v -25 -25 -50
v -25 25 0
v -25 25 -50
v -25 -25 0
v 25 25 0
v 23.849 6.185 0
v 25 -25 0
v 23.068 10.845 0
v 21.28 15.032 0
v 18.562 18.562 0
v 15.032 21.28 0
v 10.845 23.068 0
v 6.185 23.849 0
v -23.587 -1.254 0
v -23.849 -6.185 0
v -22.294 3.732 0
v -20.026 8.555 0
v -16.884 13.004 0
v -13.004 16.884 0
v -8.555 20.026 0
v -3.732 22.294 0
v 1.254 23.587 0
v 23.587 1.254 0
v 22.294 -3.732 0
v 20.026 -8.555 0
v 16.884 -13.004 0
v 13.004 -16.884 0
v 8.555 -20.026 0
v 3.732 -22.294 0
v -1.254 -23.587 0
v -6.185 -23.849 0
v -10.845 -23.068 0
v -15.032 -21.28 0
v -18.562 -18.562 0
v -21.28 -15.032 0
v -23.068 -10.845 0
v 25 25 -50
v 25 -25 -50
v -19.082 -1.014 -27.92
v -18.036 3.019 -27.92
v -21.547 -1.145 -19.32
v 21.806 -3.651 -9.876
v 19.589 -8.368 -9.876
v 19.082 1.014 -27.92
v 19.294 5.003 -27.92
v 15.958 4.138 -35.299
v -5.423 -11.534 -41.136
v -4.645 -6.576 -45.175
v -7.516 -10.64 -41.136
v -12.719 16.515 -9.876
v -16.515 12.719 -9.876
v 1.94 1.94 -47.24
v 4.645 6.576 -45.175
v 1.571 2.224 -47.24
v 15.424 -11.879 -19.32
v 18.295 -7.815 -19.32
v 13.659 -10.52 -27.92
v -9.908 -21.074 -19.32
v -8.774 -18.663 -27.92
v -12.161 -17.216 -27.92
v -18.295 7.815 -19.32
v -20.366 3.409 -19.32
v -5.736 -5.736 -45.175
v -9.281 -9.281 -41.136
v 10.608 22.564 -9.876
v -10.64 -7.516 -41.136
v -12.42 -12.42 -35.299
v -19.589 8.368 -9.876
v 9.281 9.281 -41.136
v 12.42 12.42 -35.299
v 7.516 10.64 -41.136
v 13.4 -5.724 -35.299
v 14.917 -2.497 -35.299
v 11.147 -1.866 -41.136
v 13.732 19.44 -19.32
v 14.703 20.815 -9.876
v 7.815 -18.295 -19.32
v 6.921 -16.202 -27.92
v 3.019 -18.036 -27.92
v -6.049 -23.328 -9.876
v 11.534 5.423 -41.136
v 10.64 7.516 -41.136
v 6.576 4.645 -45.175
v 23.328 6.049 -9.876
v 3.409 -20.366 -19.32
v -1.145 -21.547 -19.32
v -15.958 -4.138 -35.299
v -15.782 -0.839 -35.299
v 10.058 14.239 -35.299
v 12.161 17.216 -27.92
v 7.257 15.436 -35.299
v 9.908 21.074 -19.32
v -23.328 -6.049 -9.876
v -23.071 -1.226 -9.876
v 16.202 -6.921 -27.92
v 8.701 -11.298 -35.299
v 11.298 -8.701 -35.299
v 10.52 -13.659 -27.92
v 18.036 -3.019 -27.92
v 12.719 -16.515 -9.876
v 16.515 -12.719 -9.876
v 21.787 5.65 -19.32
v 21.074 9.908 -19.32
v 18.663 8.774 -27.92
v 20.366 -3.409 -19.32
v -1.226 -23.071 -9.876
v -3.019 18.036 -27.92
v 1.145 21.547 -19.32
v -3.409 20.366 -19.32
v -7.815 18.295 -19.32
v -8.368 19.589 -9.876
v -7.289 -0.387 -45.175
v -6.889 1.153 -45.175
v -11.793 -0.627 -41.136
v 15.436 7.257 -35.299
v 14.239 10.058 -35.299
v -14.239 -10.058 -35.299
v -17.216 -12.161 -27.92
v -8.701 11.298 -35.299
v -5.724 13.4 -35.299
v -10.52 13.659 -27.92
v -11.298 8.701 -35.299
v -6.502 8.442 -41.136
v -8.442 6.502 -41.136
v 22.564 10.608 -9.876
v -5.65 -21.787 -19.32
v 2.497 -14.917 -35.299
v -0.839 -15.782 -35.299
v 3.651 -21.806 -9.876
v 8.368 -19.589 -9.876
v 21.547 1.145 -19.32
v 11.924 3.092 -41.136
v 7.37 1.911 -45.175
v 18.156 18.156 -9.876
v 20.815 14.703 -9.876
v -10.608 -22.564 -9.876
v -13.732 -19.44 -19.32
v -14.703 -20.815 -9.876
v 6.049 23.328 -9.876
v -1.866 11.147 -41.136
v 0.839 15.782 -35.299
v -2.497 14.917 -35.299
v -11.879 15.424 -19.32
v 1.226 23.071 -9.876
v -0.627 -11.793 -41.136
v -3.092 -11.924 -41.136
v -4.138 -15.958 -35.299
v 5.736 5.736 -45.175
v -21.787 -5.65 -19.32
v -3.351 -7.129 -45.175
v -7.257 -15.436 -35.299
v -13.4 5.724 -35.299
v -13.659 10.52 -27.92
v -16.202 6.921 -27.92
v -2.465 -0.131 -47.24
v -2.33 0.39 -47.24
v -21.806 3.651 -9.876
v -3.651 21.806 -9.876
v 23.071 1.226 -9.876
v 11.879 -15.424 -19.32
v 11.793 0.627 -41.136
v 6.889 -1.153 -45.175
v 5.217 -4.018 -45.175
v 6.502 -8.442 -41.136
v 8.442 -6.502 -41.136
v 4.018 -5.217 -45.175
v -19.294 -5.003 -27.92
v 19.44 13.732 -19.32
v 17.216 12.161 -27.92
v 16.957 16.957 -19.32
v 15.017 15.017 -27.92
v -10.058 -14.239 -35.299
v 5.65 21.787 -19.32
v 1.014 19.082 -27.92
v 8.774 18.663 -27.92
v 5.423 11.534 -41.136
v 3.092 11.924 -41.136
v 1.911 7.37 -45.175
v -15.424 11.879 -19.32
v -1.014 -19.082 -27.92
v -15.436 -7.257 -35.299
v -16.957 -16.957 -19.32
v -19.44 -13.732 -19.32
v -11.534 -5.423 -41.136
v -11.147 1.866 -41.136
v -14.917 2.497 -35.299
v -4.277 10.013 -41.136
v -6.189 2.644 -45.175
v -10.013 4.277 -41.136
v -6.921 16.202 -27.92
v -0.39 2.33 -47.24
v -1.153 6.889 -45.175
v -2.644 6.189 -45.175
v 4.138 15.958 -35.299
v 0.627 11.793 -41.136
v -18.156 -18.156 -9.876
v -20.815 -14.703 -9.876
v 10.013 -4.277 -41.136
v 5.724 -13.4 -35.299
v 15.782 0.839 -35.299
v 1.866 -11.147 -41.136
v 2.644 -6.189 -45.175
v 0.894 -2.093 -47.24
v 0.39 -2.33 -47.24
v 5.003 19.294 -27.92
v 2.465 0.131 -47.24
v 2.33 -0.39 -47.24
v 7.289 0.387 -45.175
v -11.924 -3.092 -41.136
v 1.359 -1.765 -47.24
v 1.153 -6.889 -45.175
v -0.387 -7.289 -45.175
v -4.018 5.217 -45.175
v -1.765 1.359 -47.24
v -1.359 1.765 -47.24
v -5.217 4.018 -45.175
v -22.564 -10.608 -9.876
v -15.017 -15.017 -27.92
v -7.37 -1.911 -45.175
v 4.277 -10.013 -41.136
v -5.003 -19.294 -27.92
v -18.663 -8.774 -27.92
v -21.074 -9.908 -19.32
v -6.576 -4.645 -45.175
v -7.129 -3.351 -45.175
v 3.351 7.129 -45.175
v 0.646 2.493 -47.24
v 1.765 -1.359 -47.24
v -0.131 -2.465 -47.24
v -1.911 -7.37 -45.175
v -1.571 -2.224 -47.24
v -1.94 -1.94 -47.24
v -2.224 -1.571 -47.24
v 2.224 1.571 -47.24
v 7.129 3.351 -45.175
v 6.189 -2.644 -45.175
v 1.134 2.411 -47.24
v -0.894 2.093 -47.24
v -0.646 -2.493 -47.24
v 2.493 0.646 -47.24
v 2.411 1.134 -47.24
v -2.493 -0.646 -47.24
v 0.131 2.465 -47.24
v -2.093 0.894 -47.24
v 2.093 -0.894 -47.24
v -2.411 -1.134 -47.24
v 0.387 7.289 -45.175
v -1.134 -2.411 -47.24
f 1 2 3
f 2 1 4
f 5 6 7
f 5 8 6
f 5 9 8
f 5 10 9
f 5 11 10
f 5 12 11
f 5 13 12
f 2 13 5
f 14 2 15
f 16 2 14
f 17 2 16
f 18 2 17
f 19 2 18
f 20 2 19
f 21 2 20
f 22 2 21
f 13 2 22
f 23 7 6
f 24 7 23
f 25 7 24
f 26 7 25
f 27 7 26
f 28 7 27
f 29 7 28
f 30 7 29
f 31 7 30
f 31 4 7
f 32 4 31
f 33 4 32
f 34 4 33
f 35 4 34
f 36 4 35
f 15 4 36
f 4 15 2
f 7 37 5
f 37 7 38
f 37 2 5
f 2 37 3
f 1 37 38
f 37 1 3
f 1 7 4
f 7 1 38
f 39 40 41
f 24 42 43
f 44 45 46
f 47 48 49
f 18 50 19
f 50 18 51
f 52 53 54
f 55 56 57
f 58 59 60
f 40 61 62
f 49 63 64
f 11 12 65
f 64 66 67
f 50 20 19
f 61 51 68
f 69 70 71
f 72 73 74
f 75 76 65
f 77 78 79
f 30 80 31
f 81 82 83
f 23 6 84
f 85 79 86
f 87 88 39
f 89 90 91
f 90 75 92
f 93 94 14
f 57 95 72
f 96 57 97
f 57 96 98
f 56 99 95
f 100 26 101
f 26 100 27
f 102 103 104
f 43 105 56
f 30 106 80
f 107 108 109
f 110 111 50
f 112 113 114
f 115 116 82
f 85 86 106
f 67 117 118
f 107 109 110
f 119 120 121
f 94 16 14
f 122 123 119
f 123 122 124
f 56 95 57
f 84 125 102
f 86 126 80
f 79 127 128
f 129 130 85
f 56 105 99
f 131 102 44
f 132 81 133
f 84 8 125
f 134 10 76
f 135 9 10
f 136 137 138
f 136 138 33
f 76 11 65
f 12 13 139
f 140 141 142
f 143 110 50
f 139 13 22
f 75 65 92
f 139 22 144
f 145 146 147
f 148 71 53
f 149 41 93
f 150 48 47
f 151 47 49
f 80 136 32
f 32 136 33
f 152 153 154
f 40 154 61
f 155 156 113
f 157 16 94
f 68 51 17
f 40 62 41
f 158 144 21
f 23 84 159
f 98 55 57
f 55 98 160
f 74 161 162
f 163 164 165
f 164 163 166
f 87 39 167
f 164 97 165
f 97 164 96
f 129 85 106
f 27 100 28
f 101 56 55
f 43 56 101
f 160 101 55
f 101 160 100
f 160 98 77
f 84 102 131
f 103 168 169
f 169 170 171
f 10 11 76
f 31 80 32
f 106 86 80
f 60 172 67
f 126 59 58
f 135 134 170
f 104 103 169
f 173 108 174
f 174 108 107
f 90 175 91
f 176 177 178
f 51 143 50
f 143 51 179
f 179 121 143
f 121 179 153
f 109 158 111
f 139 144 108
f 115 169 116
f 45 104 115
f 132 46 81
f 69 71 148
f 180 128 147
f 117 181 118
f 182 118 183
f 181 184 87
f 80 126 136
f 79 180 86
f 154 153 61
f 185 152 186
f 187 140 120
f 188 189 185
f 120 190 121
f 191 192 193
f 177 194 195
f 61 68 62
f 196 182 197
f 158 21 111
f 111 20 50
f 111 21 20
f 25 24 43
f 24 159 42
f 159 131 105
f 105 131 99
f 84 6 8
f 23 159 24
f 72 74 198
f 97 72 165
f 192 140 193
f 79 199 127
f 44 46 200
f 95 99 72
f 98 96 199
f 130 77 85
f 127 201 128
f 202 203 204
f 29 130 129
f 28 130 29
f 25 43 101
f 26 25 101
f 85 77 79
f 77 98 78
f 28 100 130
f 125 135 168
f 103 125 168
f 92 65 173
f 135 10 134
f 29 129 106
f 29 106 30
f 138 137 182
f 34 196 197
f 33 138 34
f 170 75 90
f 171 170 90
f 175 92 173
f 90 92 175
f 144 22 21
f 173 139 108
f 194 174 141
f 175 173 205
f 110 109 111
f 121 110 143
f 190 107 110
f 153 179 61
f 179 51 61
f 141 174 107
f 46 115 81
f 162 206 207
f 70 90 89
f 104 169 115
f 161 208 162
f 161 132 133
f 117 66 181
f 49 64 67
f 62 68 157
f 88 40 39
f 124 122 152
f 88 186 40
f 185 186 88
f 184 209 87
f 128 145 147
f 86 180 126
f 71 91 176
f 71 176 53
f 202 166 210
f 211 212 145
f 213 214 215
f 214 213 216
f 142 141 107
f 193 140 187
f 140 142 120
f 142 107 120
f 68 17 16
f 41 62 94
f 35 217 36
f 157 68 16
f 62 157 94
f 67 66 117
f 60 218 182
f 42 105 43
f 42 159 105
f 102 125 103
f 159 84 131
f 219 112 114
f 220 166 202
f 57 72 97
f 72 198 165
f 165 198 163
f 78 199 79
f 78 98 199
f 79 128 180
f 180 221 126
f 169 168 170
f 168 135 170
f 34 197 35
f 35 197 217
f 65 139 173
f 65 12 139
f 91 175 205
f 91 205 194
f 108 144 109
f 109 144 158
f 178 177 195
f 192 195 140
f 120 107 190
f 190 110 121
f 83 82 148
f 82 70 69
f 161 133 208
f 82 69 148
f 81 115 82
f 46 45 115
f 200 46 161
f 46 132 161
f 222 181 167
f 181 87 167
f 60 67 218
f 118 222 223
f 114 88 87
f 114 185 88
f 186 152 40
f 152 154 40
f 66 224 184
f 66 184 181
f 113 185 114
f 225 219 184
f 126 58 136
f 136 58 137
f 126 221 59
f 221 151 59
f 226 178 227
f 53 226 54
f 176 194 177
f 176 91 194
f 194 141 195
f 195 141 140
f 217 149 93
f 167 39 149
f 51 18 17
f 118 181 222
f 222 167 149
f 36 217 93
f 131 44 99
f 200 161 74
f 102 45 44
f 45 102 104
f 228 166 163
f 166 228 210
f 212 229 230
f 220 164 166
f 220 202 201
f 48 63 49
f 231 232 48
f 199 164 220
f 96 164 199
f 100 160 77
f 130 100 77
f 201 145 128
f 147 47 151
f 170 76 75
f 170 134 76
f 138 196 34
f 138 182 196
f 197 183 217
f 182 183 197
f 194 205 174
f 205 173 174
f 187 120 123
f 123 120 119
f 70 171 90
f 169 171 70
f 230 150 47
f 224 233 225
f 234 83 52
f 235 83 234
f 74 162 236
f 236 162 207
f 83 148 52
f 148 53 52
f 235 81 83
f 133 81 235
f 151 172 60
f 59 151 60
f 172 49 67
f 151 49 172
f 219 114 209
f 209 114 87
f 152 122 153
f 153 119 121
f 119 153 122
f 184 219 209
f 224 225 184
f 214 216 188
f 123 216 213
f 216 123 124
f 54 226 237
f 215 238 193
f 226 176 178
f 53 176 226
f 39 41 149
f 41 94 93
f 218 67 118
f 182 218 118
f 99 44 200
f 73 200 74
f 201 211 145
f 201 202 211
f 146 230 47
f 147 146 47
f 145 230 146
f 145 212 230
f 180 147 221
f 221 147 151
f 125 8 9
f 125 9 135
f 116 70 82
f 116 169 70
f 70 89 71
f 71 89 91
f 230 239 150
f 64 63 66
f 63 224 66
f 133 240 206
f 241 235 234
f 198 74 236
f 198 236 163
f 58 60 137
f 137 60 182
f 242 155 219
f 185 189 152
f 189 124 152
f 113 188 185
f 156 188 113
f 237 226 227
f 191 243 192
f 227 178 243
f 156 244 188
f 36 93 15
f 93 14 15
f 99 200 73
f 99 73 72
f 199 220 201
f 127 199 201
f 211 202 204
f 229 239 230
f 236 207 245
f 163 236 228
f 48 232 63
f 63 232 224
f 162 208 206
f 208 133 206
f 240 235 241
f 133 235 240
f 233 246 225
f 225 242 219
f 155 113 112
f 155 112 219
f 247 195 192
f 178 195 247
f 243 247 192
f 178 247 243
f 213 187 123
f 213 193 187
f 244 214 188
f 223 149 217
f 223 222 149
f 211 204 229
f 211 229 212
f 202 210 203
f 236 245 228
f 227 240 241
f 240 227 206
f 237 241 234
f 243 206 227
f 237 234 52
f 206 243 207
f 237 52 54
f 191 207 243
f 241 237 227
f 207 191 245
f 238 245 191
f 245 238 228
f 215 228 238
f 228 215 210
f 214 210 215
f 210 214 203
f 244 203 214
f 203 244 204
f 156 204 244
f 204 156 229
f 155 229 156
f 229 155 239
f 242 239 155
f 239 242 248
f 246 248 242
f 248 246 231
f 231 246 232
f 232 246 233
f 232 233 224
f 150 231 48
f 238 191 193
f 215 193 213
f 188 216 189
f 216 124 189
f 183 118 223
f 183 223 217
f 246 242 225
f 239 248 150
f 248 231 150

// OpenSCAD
difference(){
    translate([0,0,-25]) cube([50,50,50], center=true);
    
    rotate([0,0,1], a=45) scale([1.05,0.85,1.9]) sphere(r=25);
//    rotate([0,0,1], a=135) scale([1.05,0.85,1.9]) sphere(r=25);
//    rotate([0,0,1], a=135) scale([1.2,0.6,1.9]) sphere(r=25);
}
